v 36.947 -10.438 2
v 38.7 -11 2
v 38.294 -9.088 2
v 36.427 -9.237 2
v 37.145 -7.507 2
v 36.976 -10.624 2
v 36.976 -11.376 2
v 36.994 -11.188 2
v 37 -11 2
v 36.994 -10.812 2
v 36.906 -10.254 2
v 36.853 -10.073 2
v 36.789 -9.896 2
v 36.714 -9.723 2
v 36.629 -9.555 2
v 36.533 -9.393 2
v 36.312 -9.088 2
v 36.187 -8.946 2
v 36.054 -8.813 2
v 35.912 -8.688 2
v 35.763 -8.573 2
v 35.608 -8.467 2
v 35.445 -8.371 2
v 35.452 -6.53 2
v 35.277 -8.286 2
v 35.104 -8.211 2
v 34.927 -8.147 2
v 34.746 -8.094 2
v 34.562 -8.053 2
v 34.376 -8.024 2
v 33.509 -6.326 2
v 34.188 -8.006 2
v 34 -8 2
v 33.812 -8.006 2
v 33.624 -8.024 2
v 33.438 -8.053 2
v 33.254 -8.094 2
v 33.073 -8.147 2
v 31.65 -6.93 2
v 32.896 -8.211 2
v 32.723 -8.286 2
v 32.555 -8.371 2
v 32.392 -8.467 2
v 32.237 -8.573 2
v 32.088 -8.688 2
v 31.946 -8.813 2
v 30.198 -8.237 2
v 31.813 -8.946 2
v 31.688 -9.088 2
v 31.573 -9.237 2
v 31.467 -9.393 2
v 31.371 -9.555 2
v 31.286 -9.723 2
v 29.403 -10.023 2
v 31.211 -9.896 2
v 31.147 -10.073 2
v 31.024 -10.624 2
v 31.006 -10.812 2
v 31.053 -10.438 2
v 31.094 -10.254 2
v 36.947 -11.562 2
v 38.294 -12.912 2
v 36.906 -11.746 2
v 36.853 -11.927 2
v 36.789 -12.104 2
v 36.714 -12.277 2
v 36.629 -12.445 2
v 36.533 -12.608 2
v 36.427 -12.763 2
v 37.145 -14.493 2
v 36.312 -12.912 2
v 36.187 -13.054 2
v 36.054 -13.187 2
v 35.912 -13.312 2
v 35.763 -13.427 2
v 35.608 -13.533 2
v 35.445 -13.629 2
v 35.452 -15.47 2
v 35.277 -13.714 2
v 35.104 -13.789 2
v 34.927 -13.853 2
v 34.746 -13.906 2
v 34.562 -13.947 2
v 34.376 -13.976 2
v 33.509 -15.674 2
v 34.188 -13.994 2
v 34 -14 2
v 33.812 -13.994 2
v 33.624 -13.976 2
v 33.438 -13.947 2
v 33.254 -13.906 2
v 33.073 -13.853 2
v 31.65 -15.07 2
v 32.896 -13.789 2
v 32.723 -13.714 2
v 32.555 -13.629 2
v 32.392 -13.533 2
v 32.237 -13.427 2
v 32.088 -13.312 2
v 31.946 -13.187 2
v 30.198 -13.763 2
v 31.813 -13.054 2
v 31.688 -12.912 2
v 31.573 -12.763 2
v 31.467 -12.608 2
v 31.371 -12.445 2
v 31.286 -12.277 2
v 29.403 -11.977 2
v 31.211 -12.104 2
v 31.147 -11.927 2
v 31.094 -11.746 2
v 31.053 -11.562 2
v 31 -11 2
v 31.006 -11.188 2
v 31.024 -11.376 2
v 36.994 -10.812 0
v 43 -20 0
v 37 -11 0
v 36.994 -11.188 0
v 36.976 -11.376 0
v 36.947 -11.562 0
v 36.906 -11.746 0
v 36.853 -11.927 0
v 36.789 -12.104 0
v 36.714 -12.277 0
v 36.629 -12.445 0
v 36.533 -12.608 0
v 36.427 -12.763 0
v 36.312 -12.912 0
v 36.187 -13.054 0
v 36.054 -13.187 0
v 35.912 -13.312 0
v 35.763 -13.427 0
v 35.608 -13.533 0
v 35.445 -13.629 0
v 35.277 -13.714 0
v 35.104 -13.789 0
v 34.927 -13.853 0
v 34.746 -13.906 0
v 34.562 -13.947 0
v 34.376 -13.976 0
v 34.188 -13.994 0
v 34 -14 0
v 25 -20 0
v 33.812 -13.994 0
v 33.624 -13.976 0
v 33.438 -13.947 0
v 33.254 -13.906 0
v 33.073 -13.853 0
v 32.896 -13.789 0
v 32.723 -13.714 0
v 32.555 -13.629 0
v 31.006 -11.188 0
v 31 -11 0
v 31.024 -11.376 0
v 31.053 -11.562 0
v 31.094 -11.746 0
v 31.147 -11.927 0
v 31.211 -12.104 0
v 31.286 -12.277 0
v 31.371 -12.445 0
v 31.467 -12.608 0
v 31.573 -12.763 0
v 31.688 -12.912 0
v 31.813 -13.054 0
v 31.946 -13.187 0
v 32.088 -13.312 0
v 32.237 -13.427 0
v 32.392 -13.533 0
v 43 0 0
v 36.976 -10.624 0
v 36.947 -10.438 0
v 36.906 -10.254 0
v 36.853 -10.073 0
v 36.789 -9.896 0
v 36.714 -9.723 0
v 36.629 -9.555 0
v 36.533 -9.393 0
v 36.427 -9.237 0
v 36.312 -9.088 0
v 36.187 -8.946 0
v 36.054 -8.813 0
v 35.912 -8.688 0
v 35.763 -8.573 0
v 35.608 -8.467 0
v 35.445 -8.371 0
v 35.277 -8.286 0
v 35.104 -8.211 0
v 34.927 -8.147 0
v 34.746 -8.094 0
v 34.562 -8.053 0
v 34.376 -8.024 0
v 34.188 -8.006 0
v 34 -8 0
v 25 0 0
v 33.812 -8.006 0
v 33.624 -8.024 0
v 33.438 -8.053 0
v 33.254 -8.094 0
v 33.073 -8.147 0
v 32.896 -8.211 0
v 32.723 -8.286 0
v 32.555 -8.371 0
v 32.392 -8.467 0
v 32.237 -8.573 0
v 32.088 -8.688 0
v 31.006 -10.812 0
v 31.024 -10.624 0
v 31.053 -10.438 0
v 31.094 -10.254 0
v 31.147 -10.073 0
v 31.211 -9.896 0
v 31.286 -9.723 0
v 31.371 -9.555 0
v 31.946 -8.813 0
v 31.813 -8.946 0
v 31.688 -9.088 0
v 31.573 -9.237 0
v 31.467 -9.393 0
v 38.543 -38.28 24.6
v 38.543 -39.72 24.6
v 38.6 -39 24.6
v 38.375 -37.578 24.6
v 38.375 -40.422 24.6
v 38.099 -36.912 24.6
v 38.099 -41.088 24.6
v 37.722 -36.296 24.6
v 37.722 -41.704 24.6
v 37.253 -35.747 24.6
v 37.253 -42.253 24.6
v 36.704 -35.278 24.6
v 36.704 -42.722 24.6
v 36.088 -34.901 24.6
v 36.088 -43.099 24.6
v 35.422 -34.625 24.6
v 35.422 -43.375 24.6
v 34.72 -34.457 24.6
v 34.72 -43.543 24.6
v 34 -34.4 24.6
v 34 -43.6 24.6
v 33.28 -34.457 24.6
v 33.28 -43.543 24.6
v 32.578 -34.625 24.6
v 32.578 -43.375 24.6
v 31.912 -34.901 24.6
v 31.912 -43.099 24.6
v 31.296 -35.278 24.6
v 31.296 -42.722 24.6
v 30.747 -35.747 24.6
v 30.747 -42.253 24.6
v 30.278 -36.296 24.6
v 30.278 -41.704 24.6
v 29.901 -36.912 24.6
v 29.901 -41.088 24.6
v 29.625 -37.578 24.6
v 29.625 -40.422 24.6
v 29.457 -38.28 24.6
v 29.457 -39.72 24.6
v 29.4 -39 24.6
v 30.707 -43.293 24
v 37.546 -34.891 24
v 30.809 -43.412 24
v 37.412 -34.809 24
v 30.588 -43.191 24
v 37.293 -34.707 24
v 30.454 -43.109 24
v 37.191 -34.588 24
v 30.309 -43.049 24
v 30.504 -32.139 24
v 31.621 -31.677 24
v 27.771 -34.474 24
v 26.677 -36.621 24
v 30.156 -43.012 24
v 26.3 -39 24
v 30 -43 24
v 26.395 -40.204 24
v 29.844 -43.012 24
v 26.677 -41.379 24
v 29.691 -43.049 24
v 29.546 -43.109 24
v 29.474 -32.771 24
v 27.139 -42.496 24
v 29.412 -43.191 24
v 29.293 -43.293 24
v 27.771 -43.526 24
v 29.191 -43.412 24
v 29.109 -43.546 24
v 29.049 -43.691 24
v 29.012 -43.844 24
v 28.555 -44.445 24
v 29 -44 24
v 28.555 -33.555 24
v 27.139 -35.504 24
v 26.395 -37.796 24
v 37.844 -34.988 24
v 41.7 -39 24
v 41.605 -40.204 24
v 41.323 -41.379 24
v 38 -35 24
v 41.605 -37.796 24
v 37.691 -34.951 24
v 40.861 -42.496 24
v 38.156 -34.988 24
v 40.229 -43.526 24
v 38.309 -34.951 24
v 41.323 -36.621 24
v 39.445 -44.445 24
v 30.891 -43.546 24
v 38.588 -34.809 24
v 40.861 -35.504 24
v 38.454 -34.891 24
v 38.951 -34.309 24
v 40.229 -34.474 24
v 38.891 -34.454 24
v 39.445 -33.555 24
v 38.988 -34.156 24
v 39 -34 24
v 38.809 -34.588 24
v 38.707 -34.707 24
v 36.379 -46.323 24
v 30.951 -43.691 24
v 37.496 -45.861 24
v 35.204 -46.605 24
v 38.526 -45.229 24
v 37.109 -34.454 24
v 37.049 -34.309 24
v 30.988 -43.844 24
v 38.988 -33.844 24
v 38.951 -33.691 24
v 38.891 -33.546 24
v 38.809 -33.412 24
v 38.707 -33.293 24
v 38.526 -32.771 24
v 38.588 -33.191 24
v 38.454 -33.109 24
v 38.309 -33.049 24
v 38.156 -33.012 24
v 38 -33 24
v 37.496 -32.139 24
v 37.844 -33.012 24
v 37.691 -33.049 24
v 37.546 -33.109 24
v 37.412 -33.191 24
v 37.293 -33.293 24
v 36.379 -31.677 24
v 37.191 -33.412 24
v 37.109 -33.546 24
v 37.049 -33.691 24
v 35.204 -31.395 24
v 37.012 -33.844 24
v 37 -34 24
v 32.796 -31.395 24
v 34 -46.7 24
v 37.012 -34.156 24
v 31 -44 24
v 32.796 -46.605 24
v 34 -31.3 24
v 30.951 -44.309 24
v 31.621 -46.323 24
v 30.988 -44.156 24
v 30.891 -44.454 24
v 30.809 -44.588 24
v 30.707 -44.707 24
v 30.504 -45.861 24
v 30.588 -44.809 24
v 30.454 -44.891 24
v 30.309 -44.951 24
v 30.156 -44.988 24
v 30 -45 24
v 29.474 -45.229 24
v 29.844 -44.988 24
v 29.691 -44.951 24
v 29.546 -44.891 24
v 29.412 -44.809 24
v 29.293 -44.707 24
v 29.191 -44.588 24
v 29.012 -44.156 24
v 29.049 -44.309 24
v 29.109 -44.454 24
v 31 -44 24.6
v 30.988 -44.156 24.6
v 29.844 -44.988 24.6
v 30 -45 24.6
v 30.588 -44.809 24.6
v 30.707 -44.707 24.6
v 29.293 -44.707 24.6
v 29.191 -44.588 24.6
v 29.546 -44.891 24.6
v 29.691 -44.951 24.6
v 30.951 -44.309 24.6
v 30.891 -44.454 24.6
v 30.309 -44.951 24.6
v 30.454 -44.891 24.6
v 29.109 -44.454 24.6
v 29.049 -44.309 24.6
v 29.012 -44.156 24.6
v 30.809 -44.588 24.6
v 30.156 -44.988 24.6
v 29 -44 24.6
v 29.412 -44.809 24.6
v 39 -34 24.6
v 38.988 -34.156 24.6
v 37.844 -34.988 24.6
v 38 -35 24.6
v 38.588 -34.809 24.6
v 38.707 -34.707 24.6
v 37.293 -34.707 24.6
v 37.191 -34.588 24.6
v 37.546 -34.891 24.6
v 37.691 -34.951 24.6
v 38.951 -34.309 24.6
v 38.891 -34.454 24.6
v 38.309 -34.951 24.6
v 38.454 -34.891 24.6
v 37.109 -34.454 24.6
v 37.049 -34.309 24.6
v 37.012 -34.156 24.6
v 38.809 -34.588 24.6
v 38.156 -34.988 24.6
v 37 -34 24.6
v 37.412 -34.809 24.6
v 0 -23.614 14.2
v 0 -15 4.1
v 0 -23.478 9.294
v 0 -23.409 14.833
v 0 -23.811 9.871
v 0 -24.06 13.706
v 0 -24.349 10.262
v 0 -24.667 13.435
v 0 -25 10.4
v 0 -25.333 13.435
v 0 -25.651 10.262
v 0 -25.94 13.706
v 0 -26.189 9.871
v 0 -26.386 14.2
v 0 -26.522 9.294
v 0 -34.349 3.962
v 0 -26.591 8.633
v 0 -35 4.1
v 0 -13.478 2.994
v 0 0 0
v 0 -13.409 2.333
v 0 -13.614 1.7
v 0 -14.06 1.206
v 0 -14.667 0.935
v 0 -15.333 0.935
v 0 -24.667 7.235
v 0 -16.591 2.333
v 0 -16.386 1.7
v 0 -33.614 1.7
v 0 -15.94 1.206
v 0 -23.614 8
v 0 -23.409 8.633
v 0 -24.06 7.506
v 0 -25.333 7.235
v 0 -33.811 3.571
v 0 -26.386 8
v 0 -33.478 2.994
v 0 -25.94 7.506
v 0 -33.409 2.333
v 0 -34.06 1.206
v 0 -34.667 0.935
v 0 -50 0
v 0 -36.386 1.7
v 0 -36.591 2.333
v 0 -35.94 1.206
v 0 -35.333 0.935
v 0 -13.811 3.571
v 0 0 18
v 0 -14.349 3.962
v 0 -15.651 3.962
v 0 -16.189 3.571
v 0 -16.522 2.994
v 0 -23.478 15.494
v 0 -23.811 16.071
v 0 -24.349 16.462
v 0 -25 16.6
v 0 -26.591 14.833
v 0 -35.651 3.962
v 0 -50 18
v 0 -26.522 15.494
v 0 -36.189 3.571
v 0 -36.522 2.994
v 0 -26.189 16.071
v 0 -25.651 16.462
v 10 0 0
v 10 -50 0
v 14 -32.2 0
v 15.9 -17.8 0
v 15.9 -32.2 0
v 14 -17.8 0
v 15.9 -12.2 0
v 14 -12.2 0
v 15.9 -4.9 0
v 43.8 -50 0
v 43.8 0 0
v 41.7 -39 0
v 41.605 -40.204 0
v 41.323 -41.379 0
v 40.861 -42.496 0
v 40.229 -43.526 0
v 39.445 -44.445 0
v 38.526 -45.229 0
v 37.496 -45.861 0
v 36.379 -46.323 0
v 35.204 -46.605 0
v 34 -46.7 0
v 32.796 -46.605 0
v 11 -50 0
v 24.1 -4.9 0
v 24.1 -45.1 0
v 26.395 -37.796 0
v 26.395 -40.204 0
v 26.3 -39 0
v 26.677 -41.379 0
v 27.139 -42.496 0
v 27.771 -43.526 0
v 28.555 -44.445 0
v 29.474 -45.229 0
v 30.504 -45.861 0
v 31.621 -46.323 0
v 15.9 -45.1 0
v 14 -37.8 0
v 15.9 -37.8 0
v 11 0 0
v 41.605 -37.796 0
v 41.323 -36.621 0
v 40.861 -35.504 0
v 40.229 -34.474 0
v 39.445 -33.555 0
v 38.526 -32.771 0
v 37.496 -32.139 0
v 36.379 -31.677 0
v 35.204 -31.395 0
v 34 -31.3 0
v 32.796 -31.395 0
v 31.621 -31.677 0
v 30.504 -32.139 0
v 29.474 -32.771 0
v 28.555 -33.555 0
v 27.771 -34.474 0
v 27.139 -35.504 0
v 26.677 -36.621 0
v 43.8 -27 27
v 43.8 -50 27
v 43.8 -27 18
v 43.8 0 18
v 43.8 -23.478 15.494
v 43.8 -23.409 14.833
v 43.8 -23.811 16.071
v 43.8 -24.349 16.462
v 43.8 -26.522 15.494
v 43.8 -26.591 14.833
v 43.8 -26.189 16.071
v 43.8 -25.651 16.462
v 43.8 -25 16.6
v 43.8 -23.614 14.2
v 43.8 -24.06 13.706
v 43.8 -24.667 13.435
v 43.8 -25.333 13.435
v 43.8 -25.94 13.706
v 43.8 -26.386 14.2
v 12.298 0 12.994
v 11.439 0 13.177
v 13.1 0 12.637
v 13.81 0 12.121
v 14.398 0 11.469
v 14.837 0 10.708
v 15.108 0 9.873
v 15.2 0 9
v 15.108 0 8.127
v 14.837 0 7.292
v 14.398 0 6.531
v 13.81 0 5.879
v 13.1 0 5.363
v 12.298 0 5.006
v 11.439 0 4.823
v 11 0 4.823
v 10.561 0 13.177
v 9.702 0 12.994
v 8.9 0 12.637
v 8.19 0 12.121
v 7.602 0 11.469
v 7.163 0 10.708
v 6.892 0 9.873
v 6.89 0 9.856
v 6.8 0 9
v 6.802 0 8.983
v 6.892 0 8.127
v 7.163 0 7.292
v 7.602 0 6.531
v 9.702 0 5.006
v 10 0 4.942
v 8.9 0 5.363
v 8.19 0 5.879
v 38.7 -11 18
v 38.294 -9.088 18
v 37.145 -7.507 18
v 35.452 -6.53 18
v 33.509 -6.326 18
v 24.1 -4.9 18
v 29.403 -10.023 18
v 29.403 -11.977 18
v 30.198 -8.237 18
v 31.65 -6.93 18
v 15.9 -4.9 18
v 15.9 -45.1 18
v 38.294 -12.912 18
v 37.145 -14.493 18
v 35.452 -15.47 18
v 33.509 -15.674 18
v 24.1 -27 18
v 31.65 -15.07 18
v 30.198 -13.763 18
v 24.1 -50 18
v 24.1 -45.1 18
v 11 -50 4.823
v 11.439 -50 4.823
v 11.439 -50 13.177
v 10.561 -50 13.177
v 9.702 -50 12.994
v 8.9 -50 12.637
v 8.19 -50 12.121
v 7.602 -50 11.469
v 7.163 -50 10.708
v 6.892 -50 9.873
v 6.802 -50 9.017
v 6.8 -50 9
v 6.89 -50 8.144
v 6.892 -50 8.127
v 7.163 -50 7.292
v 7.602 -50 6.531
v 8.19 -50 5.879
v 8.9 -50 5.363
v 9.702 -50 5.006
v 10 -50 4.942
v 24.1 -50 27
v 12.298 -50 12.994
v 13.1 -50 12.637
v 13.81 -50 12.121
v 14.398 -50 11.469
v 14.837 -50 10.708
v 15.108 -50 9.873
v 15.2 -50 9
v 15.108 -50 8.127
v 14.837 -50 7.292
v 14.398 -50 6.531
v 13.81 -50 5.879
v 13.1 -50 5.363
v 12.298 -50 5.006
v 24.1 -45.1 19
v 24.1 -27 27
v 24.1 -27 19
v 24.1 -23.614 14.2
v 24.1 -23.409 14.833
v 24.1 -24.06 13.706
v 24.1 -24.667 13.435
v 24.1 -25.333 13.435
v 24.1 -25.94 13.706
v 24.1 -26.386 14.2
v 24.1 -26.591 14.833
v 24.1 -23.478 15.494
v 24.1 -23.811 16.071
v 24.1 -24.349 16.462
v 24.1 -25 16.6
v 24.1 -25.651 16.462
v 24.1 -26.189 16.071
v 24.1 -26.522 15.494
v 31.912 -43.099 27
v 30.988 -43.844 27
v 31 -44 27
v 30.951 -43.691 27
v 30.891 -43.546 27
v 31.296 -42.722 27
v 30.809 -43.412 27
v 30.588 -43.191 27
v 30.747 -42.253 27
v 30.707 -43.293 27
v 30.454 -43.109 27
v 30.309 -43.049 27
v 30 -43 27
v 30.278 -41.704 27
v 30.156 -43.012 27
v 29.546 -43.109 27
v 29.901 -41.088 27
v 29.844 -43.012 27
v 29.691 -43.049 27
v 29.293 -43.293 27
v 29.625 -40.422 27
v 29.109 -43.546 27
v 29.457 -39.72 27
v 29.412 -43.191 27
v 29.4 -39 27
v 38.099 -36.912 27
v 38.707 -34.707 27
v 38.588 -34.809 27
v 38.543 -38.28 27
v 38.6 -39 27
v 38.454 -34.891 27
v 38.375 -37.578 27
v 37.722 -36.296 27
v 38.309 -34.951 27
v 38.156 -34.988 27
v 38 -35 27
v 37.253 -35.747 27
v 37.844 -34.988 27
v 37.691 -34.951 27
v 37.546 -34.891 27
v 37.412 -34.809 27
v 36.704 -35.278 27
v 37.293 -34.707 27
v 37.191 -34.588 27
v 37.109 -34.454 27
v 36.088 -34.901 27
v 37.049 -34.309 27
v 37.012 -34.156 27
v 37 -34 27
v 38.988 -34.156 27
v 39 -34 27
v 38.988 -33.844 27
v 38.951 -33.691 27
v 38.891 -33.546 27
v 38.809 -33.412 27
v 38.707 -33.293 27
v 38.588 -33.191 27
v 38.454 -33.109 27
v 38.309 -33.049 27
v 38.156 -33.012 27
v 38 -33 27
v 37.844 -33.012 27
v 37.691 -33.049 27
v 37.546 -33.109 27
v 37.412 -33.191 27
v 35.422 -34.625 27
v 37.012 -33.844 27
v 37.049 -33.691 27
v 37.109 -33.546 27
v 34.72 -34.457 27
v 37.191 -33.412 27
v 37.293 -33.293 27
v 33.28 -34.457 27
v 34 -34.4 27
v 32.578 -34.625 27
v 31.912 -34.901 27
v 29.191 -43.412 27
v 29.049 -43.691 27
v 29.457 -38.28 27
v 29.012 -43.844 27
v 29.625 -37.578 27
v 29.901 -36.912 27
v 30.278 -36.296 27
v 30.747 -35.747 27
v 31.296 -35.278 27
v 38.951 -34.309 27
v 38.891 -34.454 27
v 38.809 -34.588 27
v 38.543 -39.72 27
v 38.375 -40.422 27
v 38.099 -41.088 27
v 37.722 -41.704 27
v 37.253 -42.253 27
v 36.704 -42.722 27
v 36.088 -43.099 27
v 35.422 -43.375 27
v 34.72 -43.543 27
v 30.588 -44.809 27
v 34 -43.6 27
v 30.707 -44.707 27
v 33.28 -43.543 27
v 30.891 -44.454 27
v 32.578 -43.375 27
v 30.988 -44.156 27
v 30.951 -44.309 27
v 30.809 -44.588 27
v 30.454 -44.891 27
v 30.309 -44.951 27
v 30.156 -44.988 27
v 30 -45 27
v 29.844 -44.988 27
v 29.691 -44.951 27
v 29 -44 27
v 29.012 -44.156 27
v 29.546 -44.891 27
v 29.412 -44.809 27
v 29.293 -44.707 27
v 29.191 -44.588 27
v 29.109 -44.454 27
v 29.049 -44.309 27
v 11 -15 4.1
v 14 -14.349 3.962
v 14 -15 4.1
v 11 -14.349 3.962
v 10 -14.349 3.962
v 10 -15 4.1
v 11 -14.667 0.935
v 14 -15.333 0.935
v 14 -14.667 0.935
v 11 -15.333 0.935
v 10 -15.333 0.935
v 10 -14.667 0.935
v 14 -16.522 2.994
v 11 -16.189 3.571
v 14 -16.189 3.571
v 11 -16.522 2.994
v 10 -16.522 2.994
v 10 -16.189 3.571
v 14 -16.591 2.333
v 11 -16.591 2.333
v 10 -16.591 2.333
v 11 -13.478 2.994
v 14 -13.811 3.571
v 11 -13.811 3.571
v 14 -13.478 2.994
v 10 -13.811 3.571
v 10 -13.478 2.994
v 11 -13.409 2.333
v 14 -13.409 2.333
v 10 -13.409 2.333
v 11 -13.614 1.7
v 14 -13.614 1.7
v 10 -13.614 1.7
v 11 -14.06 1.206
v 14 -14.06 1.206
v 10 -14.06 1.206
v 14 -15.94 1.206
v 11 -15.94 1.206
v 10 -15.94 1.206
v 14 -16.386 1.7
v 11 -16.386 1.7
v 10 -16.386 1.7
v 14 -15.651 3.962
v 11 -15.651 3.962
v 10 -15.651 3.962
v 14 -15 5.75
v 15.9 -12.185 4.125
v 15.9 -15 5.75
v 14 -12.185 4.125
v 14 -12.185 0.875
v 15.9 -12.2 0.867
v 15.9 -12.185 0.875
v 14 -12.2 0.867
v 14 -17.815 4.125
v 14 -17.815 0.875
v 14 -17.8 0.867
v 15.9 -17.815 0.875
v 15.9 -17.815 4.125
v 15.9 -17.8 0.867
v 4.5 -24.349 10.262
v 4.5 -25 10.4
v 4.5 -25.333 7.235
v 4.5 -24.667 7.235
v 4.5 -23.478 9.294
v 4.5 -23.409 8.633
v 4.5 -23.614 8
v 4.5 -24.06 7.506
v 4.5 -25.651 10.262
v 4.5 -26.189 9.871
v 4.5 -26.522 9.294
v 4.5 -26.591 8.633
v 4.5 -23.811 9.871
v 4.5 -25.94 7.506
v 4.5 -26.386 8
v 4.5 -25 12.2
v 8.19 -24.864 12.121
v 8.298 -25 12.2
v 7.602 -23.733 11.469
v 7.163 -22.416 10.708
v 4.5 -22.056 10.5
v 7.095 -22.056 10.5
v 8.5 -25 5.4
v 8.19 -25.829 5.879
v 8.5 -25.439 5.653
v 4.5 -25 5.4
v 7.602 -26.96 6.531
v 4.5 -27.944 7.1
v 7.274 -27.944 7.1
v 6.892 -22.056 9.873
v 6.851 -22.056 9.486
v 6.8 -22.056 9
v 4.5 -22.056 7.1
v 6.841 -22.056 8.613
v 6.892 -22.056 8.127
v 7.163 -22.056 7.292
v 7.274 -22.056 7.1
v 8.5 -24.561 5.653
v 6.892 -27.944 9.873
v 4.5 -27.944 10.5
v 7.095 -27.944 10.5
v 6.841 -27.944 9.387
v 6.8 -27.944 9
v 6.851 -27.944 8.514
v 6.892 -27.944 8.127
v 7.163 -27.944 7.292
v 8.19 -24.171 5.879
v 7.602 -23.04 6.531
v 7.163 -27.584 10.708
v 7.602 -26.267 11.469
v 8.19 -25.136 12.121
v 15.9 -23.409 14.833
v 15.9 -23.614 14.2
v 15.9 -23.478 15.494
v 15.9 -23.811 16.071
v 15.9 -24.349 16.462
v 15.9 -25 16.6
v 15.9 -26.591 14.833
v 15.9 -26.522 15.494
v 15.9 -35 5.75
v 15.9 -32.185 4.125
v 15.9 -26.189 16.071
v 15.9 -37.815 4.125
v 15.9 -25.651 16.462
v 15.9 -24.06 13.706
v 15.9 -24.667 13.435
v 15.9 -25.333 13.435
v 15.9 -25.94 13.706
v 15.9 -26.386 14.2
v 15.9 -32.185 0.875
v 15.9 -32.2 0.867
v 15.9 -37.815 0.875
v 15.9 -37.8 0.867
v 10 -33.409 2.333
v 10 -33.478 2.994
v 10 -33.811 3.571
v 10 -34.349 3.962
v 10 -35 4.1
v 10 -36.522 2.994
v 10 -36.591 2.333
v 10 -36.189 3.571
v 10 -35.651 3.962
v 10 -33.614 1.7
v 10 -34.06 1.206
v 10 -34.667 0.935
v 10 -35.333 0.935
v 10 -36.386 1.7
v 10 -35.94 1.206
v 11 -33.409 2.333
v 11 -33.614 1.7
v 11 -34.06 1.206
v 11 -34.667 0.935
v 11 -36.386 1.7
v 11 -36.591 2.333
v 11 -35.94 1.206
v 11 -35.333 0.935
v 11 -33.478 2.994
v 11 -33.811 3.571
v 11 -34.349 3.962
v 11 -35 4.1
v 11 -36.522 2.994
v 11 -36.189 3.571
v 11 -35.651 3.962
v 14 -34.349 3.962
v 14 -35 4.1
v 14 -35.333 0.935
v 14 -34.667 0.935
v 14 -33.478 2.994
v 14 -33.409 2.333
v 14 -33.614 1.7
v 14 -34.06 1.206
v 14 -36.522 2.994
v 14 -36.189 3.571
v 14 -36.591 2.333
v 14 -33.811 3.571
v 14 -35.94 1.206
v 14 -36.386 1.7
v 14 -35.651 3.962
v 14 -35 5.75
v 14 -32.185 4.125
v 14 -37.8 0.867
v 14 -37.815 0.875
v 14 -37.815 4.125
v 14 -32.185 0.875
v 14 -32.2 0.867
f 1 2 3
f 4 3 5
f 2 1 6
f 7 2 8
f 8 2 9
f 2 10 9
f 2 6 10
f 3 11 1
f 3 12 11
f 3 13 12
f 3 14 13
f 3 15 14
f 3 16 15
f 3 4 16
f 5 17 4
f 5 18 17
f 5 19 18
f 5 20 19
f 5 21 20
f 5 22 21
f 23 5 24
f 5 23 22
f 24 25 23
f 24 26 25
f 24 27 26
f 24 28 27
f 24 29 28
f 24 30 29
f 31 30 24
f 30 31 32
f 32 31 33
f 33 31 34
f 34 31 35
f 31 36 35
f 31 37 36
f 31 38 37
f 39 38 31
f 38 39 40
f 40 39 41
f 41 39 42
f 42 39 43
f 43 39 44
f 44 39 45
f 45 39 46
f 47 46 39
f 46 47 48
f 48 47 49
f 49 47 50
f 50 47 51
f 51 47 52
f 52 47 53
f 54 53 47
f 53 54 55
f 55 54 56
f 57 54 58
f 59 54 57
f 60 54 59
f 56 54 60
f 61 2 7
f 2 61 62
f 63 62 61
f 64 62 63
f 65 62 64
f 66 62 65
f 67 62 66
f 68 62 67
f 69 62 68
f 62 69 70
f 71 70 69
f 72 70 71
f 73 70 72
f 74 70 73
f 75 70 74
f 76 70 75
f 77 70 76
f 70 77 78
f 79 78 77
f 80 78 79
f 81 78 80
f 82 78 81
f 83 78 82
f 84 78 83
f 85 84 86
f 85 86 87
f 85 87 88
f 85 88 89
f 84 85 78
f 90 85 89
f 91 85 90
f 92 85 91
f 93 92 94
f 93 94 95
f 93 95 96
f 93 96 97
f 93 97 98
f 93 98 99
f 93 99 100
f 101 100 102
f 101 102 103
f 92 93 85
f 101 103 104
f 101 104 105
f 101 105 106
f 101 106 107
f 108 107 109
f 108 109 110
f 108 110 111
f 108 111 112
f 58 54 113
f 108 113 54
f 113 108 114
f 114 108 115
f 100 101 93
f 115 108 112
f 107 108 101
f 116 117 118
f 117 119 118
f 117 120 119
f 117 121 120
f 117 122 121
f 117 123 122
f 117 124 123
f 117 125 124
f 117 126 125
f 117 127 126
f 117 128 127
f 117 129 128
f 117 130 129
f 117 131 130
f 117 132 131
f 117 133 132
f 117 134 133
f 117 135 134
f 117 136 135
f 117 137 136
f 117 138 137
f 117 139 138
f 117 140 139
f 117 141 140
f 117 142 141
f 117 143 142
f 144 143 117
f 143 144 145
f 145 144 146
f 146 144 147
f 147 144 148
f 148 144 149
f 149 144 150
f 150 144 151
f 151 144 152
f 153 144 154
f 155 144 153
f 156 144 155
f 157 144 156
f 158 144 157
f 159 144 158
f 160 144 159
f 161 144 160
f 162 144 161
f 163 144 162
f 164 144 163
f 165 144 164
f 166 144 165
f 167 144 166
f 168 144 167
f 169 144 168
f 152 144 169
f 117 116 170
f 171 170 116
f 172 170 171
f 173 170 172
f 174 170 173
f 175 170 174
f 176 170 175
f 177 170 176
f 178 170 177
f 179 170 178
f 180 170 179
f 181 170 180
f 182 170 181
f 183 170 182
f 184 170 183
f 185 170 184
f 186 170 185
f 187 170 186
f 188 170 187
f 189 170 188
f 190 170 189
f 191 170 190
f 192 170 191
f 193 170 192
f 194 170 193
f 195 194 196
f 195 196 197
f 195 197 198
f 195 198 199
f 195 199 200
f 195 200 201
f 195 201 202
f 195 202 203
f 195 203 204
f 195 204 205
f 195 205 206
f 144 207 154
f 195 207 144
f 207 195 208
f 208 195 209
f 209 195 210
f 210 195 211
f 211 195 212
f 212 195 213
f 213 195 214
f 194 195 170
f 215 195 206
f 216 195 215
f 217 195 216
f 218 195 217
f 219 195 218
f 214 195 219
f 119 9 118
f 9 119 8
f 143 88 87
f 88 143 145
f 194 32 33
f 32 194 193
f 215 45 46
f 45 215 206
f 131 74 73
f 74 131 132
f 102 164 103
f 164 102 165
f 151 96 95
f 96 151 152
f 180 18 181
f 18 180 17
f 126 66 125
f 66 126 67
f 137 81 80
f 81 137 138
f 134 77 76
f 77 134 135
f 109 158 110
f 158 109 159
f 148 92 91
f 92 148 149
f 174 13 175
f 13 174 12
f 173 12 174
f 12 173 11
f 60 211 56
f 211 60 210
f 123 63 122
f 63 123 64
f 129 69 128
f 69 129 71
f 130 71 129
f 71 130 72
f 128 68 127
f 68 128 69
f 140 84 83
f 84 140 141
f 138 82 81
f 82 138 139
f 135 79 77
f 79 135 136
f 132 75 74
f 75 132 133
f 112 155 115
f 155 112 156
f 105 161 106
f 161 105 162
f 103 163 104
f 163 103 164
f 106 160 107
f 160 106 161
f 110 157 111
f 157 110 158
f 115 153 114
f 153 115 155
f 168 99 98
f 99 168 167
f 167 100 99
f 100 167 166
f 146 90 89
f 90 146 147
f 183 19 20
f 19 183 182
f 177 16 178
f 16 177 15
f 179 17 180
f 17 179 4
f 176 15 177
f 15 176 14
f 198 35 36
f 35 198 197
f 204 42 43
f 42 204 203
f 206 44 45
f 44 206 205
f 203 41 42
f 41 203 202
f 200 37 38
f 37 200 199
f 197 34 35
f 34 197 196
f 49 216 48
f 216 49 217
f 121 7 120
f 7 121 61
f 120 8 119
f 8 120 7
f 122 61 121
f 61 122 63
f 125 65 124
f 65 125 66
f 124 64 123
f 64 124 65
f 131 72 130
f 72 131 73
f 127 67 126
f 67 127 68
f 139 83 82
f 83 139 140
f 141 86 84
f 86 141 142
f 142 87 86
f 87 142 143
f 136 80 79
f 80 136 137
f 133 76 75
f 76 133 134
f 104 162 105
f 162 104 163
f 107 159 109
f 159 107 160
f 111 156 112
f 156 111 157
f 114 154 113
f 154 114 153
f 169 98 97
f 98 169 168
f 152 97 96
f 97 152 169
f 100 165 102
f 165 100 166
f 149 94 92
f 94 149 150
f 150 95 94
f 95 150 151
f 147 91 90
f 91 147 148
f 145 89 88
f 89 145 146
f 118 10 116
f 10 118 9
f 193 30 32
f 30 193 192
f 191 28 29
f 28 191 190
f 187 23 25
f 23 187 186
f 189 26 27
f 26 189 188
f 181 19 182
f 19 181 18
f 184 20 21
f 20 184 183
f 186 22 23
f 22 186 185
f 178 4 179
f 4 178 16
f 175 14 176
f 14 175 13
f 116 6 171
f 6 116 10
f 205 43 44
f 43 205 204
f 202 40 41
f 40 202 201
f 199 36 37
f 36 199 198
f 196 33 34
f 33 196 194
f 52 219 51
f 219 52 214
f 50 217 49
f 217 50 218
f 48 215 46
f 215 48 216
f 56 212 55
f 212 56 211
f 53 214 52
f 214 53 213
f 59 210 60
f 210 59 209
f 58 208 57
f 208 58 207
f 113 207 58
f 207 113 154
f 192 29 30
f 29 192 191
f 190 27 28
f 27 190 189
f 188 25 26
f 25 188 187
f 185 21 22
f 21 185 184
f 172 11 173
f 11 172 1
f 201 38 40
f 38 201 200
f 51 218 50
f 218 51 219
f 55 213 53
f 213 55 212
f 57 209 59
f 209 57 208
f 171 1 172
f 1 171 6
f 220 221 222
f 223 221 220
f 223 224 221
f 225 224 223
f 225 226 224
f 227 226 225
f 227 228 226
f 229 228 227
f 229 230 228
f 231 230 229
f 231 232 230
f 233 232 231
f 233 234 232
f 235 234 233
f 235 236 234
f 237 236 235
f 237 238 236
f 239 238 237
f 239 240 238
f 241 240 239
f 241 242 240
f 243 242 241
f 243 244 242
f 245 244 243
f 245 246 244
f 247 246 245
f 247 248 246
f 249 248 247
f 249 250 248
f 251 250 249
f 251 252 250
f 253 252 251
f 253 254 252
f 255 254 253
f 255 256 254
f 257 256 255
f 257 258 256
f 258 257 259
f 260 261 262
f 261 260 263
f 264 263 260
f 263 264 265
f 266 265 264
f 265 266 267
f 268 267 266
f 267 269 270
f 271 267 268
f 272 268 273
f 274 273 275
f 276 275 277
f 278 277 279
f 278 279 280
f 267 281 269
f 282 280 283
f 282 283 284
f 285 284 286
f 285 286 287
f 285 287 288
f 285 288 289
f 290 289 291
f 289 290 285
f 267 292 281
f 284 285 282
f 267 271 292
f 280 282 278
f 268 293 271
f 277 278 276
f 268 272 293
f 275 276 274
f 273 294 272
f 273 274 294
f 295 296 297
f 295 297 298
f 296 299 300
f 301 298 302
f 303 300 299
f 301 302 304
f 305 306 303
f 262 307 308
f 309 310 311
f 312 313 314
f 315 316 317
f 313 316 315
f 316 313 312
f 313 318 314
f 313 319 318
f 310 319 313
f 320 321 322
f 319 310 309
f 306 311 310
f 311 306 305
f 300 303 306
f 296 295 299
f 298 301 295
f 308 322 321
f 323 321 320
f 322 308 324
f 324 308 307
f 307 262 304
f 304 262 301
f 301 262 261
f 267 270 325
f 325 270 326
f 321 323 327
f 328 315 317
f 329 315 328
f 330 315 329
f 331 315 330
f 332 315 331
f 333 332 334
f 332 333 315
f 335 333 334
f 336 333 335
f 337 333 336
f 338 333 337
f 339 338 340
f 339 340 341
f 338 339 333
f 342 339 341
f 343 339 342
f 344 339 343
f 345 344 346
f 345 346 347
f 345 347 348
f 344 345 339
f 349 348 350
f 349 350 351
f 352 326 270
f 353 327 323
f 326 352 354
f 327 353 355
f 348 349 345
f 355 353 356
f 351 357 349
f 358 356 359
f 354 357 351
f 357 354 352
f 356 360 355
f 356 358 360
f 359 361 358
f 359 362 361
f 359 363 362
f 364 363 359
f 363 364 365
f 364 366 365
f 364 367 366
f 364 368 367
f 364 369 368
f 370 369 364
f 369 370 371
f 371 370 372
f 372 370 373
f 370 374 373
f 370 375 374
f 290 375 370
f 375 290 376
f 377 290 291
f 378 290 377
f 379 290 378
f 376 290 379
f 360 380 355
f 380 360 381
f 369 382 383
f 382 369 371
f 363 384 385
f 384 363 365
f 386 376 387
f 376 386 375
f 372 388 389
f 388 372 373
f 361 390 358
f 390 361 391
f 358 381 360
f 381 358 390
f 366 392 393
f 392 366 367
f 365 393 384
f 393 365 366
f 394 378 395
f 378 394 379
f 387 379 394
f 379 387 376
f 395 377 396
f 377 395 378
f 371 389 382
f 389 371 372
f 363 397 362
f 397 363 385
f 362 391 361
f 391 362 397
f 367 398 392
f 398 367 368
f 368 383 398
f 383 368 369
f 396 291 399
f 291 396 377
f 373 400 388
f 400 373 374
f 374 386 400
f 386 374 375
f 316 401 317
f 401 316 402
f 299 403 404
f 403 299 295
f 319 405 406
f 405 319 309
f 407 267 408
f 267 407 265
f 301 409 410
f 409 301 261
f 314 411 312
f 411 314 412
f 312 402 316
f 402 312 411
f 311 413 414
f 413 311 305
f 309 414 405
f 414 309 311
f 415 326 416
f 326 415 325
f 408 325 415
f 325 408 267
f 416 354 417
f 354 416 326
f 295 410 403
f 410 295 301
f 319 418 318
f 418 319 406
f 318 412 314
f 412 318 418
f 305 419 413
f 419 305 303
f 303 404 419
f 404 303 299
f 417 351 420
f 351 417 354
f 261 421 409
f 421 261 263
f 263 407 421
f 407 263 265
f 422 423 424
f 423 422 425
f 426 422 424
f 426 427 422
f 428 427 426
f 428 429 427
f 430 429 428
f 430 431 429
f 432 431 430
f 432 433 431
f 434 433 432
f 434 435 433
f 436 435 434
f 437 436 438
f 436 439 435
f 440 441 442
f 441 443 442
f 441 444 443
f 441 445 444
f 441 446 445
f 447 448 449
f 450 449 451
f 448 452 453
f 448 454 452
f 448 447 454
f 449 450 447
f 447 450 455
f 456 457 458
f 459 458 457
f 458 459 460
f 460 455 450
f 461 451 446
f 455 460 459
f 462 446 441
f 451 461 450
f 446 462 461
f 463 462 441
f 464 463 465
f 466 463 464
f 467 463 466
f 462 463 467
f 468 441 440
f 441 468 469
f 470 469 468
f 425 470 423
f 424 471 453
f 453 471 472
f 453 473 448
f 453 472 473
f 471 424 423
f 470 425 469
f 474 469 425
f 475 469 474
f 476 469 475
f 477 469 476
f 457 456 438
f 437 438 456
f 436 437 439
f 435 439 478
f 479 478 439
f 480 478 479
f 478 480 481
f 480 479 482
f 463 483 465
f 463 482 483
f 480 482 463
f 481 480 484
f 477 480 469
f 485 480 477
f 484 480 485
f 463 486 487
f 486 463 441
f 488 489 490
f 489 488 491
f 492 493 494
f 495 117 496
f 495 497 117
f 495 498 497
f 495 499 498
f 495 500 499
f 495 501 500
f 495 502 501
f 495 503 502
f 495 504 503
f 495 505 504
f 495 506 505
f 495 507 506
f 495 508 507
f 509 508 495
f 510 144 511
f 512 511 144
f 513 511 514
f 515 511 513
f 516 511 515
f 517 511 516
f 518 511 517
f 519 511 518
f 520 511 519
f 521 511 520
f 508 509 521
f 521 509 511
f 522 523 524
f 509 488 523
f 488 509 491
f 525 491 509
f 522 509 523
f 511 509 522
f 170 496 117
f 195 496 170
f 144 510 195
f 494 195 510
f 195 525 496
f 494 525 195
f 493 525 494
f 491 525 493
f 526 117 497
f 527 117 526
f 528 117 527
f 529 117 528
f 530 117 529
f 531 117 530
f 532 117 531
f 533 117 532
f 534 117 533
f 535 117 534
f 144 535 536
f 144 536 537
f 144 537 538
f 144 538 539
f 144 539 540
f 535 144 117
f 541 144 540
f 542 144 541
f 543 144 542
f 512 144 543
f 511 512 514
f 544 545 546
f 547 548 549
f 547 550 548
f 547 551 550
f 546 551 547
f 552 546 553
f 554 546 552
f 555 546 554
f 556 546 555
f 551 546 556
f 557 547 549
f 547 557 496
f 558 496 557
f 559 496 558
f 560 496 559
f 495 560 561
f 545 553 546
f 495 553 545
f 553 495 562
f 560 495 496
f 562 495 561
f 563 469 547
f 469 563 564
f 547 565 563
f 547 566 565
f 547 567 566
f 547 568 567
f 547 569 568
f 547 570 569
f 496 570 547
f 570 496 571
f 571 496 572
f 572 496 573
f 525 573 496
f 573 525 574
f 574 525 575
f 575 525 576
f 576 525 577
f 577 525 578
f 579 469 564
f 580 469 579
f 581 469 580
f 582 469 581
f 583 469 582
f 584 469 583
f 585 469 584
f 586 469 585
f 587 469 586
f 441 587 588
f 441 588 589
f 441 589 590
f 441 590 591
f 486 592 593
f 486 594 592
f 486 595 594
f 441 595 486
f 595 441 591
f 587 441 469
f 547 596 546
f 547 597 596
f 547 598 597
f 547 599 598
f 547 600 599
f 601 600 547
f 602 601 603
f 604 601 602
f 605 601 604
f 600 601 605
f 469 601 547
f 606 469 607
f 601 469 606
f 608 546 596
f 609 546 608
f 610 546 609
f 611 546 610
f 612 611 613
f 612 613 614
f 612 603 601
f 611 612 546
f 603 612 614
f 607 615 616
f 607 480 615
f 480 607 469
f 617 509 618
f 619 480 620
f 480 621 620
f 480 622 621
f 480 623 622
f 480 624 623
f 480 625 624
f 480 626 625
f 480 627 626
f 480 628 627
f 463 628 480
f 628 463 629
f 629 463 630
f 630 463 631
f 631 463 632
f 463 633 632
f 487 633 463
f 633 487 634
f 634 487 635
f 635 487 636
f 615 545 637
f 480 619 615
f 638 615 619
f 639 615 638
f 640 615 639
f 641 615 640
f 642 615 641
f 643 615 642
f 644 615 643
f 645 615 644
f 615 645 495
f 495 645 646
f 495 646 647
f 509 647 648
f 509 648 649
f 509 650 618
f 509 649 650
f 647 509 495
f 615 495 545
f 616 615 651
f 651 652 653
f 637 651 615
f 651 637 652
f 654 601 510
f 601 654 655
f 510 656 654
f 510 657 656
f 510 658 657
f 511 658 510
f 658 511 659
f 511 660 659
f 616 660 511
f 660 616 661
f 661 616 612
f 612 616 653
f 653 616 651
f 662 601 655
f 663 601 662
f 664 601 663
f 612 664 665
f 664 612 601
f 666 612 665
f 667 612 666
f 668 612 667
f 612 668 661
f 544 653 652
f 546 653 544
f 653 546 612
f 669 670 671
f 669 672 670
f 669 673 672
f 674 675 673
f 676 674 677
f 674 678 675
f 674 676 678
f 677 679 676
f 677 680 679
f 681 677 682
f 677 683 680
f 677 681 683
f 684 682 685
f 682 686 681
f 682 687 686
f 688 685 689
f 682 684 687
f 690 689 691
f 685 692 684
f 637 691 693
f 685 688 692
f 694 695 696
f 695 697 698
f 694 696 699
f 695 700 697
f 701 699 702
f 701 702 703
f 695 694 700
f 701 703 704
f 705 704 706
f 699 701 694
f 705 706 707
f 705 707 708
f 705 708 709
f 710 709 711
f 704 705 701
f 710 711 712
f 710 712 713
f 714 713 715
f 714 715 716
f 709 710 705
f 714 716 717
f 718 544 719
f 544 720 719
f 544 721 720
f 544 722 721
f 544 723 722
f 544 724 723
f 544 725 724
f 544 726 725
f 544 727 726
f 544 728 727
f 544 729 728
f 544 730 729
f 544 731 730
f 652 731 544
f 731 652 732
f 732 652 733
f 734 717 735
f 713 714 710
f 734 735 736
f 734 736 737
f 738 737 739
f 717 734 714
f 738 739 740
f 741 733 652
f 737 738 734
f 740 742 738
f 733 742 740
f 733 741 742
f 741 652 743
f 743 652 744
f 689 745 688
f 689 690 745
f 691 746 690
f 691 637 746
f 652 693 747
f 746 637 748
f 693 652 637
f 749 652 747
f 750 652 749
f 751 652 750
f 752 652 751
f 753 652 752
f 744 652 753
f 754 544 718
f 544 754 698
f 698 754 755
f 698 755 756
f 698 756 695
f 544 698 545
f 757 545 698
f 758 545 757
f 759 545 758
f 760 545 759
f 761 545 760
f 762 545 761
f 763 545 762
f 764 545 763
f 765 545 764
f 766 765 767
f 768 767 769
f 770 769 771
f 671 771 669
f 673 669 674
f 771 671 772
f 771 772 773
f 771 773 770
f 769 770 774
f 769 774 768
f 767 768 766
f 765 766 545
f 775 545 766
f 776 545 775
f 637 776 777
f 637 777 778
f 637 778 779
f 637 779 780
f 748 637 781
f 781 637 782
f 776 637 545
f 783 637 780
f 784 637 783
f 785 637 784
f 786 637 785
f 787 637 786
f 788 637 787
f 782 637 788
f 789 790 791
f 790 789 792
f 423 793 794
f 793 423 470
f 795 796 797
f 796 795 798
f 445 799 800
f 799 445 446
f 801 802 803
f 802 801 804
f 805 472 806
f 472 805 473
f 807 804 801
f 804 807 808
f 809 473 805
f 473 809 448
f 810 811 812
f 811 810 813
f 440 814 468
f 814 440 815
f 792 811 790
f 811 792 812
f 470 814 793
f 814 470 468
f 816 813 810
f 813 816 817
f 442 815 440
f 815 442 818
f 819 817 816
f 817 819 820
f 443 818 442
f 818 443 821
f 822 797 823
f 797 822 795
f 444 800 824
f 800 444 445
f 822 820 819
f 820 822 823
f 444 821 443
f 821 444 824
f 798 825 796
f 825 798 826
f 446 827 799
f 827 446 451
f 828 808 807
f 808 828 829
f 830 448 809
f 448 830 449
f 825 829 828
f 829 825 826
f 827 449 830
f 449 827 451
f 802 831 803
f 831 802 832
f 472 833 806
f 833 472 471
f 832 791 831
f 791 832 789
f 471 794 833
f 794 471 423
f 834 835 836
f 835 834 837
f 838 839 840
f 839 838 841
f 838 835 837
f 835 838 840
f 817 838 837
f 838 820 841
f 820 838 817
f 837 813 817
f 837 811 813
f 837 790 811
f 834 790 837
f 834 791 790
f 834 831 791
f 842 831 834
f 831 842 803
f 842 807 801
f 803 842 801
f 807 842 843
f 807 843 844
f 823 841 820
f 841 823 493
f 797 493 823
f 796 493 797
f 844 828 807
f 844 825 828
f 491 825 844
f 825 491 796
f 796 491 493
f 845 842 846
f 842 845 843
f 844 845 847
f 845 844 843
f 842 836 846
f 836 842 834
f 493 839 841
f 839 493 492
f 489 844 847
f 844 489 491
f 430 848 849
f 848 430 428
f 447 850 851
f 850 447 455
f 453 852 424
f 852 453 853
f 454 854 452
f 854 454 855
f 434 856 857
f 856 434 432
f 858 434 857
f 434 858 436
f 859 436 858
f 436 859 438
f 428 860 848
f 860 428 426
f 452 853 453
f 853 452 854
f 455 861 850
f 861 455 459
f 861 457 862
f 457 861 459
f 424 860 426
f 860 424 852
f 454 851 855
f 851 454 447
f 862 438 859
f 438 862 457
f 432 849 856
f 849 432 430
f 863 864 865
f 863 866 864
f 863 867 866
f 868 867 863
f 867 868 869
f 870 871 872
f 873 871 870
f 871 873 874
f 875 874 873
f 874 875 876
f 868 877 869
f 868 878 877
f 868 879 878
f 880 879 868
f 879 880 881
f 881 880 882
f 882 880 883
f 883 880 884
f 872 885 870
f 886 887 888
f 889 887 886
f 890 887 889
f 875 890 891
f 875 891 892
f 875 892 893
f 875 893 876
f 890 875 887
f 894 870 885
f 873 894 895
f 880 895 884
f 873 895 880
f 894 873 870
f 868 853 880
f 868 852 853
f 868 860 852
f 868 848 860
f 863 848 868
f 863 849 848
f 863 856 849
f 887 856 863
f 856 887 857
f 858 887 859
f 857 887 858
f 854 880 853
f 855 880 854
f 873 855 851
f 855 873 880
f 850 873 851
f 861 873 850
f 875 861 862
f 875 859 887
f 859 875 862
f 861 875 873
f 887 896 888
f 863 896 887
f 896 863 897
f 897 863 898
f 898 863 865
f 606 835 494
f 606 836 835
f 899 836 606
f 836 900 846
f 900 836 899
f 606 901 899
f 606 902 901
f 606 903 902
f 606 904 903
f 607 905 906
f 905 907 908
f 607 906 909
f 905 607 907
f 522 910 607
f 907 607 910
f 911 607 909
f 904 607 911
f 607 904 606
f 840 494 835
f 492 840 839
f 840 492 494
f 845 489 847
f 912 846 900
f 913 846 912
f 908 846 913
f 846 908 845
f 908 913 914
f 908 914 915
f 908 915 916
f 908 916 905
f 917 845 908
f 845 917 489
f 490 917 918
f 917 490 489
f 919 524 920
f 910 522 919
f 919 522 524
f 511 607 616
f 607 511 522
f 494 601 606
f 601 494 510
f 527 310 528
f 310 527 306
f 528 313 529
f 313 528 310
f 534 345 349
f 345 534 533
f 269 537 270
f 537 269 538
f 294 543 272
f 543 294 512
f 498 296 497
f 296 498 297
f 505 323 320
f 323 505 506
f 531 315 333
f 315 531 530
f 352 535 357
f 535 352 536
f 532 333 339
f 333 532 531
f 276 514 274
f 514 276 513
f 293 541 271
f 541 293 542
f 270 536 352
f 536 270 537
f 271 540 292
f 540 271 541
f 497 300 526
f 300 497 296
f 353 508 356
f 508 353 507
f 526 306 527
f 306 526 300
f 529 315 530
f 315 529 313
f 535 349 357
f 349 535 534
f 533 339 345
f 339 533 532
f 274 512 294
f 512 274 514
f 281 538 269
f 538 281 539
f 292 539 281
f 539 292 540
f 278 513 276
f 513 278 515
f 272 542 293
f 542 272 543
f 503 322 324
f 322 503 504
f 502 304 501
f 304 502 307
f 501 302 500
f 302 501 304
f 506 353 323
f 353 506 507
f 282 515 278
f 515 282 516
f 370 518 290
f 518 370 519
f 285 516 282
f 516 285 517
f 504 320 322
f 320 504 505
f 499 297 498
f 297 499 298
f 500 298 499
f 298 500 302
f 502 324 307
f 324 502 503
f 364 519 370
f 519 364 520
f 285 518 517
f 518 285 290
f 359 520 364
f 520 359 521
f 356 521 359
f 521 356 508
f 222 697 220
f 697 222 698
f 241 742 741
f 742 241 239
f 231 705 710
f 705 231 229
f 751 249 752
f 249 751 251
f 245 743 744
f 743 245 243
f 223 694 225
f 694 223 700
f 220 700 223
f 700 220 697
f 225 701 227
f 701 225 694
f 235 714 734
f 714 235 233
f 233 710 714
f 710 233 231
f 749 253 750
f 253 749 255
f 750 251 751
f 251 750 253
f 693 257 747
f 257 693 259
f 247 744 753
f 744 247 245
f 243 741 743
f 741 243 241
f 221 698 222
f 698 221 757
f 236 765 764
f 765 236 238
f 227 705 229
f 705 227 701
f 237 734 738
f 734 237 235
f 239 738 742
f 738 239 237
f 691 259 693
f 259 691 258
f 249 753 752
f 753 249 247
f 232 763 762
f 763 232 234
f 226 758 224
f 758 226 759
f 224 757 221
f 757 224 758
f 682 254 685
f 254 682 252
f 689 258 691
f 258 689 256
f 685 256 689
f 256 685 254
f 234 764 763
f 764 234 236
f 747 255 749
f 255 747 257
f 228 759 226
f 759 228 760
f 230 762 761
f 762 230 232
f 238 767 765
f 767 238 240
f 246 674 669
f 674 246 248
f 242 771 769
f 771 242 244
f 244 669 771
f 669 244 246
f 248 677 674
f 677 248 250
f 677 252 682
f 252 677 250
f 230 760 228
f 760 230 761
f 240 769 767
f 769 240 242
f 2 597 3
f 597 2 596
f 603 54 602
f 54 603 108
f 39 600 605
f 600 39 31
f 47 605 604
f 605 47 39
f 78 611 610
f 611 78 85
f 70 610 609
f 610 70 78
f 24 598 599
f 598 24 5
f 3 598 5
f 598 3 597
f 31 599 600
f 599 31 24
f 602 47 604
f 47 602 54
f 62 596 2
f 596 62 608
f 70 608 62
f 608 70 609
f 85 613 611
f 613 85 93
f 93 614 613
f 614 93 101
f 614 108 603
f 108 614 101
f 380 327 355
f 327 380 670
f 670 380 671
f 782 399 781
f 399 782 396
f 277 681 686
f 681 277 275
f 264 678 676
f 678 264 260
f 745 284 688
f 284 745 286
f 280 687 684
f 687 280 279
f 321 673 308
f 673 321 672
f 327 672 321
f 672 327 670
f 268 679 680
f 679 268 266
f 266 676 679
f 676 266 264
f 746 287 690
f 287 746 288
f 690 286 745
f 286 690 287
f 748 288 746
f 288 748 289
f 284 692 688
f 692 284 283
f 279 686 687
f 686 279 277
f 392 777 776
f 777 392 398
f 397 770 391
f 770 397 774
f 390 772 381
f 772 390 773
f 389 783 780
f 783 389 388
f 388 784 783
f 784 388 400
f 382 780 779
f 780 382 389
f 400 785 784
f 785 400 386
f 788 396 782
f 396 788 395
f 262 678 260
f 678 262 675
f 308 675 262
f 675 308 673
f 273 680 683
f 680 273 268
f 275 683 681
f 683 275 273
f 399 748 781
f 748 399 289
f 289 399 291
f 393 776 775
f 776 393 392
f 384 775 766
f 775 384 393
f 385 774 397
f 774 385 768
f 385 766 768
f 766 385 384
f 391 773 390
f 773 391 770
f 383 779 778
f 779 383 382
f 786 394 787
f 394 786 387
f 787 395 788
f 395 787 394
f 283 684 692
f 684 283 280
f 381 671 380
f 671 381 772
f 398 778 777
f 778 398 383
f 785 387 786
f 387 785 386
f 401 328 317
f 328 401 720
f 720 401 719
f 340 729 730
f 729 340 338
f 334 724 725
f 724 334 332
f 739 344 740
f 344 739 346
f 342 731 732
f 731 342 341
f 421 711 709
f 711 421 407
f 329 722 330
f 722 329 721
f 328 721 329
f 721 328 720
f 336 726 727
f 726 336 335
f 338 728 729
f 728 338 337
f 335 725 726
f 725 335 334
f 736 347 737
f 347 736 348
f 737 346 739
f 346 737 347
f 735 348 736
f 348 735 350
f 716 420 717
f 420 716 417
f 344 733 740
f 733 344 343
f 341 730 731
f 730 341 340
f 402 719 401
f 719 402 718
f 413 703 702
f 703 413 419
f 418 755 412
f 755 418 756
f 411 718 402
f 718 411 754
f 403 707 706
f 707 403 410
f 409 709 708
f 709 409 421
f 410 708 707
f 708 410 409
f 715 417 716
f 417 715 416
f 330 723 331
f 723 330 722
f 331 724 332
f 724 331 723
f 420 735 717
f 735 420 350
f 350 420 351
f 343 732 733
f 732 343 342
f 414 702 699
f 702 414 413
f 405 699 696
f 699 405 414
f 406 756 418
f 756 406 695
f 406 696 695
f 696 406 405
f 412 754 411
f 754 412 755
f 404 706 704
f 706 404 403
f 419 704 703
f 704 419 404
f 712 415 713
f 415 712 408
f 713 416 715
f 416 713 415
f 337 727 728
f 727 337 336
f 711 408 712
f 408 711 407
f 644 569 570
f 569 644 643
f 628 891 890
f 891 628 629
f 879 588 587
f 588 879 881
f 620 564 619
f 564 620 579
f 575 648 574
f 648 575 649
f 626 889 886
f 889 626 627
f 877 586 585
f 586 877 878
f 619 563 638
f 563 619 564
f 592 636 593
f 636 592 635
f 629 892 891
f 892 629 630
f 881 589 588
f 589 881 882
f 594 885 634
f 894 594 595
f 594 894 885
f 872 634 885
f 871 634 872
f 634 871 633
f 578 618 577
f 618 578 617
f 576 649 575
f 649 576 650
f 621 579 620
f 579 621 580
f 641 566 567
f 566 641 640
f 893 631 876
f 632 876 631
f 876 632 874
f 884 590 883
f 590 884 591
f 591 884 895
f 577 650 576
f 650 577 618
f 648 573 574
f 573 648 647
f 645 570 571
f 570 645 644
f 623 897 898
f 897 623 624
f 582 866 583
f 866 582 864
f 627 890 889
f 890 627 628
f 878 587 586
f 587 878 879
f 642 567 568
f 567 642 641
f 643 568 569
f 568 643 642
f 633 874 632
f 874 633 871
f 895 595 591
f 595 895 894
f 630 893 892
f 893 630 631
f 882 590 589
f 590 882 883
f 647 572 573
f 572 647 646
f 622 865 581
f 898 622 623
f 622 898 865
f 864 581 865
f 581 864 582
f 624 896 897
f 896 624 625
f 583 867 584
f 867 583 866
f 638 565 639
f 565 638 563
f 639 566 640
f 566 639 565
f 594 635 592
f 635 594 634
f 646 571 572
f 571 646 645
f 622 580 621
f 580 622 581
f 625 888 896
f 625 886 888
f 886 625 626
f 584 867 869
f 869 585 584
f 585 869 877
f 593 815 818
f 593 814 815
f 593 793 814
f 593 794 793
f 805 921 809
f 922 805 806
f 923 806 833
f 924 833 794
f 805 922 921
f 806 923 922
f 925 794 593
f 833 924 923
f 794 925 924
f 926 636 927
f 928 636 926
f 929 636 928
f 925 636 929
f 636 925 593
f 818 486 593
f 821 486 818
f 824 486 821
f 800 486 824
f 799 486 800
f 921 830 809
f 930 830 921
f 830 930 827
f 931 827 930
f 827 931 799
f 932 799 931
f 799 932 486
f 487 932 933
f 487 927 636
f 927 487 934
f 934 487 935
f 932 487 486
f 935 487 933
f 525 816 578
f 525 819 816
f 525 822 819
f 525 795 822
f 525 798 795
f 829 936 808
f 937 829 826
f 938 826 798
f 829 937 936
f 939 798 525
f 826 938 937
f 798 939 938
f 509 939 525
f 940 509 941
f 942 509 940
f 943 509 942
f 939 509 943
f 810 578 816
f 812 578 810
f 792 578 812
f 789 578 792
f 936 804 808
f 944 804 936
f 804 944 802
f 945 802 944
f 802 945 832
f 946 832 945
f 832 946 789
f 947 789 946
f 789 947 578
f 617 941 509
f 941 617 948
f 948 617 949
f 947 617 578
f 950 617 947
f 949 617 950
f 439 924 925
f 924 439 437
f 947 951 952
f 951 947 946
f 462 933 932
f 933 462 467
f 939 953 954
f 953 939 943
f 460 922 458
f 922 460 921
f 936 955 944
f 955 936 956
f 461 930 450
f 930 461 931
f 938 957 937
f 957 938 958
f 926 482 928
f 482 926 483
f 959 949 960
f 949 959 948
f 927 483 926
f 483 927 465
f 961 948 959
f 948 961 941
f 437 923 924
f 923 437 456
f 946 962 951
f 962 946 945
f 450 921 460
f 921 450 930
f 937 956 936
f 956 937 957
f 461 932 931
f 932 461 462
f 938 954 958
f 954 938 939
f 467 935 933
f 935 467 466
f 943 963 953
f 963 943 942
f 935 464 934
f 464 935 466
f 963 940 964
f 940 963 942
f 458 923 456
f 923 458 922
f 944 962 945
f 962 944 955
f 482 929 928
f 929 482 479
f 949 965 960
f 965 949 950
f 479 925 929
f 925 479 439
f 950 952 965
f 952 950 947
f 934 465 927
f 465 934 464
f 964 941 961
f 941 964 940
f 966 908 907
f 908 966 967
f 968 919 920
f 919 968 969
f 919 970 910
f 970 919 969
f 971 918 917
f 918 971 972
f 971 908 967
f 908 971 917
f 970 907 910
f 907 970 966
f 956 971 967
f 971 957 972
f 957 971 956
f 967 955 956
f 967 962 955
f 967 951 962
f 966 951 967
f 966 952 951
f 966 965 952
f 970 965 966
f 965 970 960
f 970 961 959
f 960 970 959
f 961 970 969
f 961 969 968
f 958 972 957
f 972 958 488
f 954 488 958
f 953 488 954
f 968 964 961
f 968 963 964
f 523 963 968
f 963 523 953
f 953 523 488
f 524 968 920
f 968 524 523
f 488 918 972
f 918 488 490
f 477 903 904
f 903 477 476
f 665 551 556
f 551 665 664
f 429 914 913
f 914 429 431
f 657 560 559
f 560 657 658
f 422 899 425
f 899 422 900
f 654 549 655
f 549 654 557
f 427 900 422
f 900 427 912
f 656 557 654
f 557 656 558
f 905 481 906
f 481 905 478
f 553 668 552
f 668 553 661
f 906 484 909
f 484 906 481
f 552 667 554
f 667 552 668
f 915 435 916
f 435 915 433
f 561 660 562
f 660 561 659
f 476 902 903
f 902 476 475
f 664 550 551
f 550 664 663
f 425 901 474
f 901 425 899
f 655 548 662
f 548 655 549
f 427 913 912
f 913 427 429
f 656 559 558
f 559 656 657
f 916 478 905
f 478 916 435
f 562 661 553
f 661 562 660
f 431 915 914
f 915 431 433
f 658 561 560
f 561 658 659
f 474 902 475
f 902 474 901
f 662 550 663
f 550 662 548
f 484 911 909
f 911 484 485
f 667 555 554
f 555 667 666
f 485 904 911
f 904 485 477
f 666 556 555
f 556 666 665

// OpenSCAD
// file: carriage-part03.scad
/**
 * Критические размеры
 */
// Допуск на радиус подшипника (расстояние между стенками подшипника и детали)
delta1=0.2;
// Наружный диаметр линейного подшипника LM8UU
d1=15;
// Допуск на радиус направляющей (расстояние между стенками направляющей и детали)
delta2=0.2;
// Наружный диаметр направляющей
d2=8;

module carriage_part03() {
	module block() {
		M3 = 3.2/2;
		difference() {
			union() {
				translate([-2,0,0]) cube([43.8,50,18]);
				translate([-2,10,0]) cube([2,30,18]);
				// шапка над подшипником
				translate ([22.1,0,-9]) cube([19.7,23,9]);
			}

//	translate([-10,-10,-40])cube([100,100,50]);
//	translate([-10,-10,13])cube([100,100,50]);
//	translate([-78,-10,-20])cube([100,100,50]);

// вырез под оргстекло
//	translate([13.9,5,-1])cube([8.2,40,23]); - не входит
	translate([13.9,4.9,-1])cube([8.2,40.2,23]);

// линейный подшипник 24 * 15 * 8
//translate([32,11,-4]) cylinder(26,r=15.4/2,$fn=40); // для инверсии входа подшипника
	translate([32,11,-6]) cylinder(26,r=d1/2+delta1,$fn=40);

	translate([32,11,-10]) cylinder(20,r=9.2/2,$fn=40);

	// гайка  M5
//#	translate([32,39,-1])cylinder(6.4,r=4.7,$fn=40);
//#	translate([32,39,10])cylinder(9,r=4.7,$fn=40);
//#	translate([35,32.4,-1])cube([6,13.2,20]);
	//translate ([32,39,-1]) cylinder(20,r=9.4/2,$fn=6); // плотно сидит
	translate ([32,39,-1]) cylinder(20,r=9.4/2);
//	translate ([32,39,-1]) cylinder(20,r=10.2/2,$fn=6); // свободно сидит

	// Отверстия для извлечения подшипников
	translate([28,6,-10]) cylinder(20,r=1,$fn=40);
	translate([36,16,-10]) cylinder(20,r=1,$fn=40);

	// направляющая - слабо держит
//	translate([9,-1,9])rotate([-90,0,0])cylinder(52,r=8.4/2,$fn=30);
	translate([9,-1,9])rotate([-90,0,0])cylinder(52,r=d2/2+delta2,$fn=30);
	// вырезы у направляющей
	translate([8,-1,8])cube([1,52,11]);
	// отверстие 1
	translate([-5,15,15.5])rotate([0,90,0])cylinder(20,r=M3,$fn=15);
	translate([12,15,15.5])rotate([0,90,0])cylinder(5,r=6.5/2,$fn=6);
	translate([12,12.2,17])cube([3,5.6,2]);

	// отверстие 2
	translate([0,35,0]) {
		translate([-5,0,15.5])rotate([0,90,0])cylinder(20,r=M3,$fn=15);
        translate([12,0,15.5])rotate([0,90,0])cylinder(5,r=6.5/2,$fn=6);
        translate([12,-15+12.2,17])cube([3,5.6,2]);
	}
	// отверстие 3 в прижиме
	translate([-9.5,10,-6.6]) {
		translate([-5,15,15.8])rotate([0,90,0])cylinder(20,r=M3,$fn=15);
	translate([12,15,15.8])rotate([0,90,0])cylinder(4,r=6.8/2,$fn=6);
	}
	// сквозное отверстие в детали
		translate([-14.5,25,3])rotate([0,90,0])cylinder(60,r=M3,$fn=15);

}
}

// шапка над гайкой, отверстие в ней
difference() {
	translate ([25,0,0]) cube([18,20,2]);
	translate ([34,11,-5]) cylinder(10,r=6/2,$fn=100);
}

difference() {
// мост над подшипником
	translate ([25,30,24]) cube([18,20,0.6]) ;

// Отверстия для извлечения подшипников
	translate([30,44,10]) cylinder(20,r=1,$fn=40);
	translate([38,34,10])  cylinder(20,r=1,$fn=40);

//	translate ([44,7,24]) rotate([0,0,0]) 	holes();
}

// мост над трубкой - не нужен при верной ориентации прохода втулки
//	translate ([24,30.5,13.5]) cube([16,16,0.5]);
    translate([2,50,18])rotate([180,0,0])block();
}

carriage_part03();
// main file
use <carriage-part03.scad>
module carriage_part04() {
    mirror([0,1,0]) carriage_part03();
}

carriage_part04();
